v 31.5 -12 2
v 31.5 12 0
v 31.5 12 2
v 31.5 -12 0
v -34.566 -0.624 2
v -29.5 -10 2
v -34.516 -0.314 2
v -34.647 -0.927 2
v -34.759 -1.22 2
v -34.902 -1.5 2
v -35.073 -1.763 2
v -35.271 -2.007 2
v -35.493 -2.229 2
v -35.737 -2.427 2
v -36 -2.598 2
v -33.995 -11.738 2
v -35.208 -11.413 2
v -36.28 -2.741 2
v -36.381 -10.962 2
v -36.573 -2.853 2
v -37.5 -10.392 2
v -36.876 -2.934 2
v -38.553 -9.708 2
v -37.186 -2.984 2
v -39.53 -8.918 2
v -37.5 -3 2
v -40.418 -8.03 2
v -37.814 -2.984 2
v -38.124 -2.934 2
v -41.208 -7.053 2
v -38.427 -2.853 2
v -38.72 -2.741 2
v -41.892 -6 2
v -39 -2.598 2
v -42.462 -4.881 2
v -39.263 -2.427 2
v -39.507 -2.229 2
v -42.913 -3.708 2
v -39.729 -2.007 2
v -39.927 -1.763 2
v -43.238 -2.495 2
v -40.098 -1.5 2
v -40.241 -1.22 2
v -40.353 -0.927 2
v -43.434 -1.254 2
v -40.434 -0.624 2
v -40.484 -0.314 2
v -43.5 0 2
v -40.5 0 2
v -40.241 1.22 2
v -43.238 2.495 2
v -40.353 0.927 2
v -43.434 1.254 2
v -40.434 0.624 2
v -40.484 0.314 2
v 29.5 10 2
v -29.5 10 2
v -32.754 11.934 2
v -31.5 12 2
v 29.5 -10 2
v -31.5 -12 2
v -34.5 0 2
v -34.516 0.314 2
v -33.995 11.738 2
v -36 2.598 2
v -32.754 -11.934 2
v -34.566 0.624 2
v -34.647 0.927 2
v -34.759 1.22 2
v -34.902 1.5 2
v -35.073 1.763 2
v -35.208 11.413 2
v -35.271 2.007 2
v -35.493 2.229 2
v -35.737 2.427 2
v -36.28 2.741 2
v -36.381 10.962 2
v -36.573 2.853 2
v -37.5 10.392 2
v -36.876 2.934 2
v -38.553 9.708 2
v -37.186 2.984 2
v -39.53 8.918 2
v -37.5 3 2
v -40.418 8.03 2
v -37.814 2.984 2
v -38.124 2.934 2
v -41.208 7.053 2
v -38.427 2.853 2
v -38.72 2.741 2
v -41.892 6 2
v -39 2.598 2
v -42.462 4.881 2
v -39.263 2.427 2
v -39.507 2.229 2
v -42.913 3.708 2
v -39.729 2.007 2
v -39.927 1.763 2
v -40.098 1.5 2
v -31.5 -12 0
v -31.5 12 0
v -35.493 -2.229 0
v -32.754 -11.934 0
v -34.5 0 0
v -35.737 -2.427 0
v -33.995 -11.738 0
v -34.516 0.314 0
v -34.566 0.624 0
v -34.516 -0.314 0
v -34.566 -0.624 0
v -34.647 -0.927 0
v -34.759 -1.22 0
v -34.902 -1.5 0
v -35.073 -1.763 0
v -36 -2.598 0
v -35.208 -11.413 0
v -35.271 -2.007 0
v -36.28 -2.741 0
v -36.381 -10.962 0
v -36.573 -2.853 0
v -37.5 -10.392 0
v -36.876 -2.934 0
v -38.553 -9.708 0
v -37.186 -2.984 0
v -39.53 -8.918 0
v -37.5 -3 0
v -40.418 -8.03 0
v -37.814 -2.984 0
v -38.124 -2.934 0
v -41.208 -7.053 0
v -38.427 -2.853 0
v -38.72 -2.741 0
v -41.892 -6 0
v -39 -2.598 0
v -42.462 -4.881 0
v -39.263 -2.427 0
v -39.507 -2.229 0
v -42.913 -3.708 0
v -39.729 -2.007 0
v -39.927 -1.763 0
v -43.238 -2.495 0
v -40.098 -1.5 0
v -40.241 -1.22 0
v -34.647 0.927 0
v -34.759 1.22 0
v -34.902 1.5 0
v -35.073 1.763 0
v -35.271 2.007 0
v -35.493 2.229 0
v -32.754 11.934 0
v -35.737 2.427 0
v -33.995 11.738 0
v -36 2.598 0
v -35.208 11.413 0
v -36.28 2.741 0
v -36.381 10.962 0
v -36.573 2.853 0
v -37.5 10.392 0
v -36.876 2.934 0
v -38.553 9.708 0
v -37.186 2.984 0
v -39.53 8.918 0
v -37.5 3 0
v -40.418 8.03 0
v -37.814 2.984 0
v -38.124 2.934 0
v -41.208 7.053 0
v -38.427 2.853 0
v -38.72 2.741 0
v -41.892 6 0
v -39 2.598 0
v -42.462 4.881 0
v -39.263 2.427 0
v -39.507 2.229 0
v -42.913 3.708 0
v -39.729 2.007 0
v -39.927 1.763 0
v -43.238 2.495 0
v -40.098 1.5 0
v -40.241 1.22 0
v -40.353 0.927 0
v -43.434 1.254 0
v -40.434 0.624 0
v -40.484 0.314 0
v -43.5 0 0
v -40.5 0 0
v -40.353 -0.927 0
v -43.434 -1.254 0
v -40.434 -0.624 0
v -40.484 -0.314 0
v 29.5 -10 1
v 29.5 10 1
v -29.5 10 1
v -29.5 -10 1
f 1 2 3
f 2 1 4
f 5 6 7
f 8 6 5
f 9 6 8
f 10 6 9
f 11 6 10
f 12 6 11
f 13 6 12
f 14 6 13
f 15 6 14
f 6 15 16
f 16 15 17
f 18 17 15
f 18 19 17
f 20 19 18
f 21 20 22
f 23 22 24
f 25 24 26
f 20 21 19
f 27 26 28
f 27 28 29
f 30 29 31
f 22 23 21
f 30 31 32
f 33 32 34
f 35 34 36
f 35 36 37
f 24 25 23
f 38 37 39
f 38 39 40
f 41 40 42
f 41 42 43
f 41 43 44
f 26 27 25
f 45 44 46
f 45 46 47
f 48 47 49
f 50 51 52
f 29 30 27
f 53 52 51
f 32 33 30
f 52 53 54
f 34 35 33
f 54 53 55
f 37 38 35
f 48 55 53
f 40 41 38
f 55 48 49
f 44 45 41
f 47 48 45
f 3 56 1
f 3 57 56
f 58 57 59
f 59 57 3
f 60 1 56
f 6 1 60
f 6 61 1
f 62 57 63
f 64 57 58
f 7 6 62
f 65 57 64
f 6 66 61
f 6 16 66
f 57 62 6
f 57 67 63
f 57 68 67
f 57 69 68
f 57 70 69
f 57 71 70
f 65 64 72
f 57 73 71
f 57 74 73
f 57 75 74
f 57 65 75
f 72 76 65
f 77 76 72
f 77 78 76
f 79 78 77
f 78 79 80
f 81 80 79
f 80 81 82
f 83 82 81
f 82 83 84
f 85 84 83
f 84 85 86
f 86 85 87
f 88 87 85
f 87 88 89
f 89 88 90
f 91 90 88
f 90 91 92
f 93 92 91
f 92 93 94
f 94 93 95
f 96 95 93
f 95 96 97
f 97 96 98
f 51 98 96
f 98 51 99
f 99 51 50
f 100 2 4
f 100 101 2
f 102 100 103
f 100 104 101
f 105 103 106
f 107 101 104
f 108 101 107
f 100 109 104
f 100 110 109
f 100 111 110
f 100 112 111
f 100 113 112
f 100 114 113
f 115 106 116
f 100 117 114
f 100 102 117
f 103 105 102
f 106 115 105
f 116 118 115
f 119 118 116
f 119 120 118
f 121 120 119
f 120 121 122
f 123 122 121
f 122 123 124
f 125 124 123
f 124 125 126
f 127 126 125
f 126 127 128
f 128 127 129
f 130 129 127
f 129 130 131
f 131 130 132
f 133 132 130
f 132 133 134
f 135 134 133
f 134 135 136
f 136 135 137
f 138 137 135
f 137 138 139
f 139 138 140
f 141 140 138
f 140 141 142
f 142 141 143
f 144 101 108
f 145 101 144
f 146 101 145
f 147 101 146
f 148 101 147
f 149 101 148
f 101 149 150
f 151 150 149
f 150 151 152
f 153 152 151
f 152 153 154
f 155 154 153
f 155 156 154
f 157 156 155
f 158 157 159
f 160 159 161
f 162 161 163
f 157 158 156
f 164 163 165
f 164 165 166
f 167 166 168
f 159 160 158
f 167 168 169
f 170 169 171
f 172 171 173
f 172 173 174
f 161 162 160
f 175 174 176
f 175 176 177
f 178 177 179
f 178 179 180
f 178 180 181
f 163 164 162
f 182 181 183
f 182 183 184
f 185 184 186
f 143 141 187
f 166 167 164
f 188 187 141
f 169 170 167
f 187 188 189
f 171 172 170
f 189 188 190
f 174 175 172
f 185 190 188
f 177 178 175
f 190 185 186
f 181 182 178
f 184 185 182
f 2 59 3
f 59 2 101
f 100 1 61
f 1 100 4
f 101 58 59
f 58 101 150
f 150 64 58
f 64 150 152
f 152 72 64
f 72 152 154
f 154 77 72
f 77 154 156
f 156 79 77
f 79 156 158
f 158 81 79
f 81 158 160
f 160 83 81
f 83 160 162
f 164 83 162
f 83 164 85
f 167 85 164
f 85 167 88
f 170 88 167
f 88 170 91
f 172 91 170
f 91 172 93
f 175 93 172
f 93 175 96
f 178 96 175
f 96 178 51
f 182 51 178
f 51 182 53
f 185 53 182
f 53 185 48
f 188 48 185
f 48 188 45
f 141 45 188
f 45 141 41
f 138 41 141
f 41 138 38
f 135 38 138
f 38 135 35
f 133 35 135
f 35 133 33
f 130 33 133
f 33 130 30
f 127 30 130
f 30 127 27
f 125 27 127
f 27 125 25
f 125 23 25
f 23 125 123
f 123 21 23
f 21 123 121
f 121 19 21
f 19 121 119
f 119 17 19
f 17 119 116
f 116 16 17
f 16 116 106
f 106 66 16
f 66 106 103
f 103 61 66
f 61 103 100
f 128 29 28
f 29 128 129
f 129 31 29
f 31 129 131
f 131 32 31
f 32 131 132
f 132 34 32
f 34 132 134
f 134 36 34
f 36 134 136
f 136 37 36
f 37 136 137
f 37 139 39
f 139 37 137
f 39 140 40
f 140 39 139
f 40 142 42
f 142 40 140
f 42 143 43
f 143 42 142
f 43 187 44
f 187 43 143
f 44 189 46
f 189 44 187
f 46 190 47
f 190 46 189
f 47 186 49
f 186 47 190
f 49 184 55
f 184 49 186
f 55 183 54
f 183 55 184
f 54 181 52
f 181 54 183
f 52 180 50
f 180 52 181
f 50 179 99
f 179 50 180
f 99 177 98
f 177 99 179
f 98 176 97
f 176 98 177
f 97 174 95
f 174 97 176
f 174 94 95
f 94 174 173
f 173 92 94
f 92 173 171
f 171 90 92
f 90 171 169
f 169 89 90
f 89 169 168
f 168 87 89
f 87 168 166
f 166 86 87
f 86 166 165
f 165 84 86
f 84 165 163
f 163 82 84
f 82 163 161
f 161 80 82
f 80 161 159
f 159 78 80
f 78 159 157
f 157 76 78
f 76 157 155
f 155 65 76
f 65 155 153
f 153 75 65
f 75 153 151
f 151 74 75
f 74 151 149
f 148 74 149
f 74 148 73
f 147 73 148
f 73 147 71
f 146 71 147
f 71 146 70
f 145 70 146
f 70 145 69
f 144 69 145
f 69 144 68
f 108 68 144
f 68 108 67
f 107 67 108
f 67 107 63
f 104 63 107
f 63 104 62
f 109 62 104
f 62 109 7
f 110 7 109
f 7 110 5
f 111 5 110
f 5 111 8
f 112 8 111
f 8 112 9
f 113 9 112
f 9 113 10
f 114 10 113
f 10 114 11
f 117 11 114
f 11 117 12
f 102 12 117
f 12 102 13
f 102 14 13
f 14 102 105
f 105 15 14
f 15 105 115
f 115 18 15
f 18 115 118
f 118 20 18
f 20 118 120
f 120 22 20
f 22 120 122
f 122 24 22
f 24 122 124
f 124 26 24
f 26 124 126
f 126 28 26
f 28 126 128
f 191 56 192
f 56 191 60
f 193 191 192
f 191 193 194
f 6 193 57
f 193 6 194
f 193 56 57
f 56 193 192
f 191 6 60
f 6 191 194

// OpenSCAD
// file: variables.scad
confetti_w = 55;
confetti_h = 16;

margin = 4;

plate_w = confetti_w + margin;
plate_h = confetti_h + margin;

thickness = 2;
// main file
include <variables.scad>

$fn=60;

w = plate_w + 4;
h = plate_h + 4;

difference() {
     translate([0, 0, thickness/2]) {
          union() {
               cube([w, h, thickness], center=true);
               translate([-(w/2), 0, 0]) {
                    linear_extrude(height=thickness, center=true) {
                         difference() {
                              circle(h/2);
                              translate([-h/4, 0, 0]) {
                                   circle(h/8);
                              }
                         }
                    }
               }
          }
     }
     translate([0, 0, thickness]) cube([plate_w, plate_h, thickness], center=true);
}
